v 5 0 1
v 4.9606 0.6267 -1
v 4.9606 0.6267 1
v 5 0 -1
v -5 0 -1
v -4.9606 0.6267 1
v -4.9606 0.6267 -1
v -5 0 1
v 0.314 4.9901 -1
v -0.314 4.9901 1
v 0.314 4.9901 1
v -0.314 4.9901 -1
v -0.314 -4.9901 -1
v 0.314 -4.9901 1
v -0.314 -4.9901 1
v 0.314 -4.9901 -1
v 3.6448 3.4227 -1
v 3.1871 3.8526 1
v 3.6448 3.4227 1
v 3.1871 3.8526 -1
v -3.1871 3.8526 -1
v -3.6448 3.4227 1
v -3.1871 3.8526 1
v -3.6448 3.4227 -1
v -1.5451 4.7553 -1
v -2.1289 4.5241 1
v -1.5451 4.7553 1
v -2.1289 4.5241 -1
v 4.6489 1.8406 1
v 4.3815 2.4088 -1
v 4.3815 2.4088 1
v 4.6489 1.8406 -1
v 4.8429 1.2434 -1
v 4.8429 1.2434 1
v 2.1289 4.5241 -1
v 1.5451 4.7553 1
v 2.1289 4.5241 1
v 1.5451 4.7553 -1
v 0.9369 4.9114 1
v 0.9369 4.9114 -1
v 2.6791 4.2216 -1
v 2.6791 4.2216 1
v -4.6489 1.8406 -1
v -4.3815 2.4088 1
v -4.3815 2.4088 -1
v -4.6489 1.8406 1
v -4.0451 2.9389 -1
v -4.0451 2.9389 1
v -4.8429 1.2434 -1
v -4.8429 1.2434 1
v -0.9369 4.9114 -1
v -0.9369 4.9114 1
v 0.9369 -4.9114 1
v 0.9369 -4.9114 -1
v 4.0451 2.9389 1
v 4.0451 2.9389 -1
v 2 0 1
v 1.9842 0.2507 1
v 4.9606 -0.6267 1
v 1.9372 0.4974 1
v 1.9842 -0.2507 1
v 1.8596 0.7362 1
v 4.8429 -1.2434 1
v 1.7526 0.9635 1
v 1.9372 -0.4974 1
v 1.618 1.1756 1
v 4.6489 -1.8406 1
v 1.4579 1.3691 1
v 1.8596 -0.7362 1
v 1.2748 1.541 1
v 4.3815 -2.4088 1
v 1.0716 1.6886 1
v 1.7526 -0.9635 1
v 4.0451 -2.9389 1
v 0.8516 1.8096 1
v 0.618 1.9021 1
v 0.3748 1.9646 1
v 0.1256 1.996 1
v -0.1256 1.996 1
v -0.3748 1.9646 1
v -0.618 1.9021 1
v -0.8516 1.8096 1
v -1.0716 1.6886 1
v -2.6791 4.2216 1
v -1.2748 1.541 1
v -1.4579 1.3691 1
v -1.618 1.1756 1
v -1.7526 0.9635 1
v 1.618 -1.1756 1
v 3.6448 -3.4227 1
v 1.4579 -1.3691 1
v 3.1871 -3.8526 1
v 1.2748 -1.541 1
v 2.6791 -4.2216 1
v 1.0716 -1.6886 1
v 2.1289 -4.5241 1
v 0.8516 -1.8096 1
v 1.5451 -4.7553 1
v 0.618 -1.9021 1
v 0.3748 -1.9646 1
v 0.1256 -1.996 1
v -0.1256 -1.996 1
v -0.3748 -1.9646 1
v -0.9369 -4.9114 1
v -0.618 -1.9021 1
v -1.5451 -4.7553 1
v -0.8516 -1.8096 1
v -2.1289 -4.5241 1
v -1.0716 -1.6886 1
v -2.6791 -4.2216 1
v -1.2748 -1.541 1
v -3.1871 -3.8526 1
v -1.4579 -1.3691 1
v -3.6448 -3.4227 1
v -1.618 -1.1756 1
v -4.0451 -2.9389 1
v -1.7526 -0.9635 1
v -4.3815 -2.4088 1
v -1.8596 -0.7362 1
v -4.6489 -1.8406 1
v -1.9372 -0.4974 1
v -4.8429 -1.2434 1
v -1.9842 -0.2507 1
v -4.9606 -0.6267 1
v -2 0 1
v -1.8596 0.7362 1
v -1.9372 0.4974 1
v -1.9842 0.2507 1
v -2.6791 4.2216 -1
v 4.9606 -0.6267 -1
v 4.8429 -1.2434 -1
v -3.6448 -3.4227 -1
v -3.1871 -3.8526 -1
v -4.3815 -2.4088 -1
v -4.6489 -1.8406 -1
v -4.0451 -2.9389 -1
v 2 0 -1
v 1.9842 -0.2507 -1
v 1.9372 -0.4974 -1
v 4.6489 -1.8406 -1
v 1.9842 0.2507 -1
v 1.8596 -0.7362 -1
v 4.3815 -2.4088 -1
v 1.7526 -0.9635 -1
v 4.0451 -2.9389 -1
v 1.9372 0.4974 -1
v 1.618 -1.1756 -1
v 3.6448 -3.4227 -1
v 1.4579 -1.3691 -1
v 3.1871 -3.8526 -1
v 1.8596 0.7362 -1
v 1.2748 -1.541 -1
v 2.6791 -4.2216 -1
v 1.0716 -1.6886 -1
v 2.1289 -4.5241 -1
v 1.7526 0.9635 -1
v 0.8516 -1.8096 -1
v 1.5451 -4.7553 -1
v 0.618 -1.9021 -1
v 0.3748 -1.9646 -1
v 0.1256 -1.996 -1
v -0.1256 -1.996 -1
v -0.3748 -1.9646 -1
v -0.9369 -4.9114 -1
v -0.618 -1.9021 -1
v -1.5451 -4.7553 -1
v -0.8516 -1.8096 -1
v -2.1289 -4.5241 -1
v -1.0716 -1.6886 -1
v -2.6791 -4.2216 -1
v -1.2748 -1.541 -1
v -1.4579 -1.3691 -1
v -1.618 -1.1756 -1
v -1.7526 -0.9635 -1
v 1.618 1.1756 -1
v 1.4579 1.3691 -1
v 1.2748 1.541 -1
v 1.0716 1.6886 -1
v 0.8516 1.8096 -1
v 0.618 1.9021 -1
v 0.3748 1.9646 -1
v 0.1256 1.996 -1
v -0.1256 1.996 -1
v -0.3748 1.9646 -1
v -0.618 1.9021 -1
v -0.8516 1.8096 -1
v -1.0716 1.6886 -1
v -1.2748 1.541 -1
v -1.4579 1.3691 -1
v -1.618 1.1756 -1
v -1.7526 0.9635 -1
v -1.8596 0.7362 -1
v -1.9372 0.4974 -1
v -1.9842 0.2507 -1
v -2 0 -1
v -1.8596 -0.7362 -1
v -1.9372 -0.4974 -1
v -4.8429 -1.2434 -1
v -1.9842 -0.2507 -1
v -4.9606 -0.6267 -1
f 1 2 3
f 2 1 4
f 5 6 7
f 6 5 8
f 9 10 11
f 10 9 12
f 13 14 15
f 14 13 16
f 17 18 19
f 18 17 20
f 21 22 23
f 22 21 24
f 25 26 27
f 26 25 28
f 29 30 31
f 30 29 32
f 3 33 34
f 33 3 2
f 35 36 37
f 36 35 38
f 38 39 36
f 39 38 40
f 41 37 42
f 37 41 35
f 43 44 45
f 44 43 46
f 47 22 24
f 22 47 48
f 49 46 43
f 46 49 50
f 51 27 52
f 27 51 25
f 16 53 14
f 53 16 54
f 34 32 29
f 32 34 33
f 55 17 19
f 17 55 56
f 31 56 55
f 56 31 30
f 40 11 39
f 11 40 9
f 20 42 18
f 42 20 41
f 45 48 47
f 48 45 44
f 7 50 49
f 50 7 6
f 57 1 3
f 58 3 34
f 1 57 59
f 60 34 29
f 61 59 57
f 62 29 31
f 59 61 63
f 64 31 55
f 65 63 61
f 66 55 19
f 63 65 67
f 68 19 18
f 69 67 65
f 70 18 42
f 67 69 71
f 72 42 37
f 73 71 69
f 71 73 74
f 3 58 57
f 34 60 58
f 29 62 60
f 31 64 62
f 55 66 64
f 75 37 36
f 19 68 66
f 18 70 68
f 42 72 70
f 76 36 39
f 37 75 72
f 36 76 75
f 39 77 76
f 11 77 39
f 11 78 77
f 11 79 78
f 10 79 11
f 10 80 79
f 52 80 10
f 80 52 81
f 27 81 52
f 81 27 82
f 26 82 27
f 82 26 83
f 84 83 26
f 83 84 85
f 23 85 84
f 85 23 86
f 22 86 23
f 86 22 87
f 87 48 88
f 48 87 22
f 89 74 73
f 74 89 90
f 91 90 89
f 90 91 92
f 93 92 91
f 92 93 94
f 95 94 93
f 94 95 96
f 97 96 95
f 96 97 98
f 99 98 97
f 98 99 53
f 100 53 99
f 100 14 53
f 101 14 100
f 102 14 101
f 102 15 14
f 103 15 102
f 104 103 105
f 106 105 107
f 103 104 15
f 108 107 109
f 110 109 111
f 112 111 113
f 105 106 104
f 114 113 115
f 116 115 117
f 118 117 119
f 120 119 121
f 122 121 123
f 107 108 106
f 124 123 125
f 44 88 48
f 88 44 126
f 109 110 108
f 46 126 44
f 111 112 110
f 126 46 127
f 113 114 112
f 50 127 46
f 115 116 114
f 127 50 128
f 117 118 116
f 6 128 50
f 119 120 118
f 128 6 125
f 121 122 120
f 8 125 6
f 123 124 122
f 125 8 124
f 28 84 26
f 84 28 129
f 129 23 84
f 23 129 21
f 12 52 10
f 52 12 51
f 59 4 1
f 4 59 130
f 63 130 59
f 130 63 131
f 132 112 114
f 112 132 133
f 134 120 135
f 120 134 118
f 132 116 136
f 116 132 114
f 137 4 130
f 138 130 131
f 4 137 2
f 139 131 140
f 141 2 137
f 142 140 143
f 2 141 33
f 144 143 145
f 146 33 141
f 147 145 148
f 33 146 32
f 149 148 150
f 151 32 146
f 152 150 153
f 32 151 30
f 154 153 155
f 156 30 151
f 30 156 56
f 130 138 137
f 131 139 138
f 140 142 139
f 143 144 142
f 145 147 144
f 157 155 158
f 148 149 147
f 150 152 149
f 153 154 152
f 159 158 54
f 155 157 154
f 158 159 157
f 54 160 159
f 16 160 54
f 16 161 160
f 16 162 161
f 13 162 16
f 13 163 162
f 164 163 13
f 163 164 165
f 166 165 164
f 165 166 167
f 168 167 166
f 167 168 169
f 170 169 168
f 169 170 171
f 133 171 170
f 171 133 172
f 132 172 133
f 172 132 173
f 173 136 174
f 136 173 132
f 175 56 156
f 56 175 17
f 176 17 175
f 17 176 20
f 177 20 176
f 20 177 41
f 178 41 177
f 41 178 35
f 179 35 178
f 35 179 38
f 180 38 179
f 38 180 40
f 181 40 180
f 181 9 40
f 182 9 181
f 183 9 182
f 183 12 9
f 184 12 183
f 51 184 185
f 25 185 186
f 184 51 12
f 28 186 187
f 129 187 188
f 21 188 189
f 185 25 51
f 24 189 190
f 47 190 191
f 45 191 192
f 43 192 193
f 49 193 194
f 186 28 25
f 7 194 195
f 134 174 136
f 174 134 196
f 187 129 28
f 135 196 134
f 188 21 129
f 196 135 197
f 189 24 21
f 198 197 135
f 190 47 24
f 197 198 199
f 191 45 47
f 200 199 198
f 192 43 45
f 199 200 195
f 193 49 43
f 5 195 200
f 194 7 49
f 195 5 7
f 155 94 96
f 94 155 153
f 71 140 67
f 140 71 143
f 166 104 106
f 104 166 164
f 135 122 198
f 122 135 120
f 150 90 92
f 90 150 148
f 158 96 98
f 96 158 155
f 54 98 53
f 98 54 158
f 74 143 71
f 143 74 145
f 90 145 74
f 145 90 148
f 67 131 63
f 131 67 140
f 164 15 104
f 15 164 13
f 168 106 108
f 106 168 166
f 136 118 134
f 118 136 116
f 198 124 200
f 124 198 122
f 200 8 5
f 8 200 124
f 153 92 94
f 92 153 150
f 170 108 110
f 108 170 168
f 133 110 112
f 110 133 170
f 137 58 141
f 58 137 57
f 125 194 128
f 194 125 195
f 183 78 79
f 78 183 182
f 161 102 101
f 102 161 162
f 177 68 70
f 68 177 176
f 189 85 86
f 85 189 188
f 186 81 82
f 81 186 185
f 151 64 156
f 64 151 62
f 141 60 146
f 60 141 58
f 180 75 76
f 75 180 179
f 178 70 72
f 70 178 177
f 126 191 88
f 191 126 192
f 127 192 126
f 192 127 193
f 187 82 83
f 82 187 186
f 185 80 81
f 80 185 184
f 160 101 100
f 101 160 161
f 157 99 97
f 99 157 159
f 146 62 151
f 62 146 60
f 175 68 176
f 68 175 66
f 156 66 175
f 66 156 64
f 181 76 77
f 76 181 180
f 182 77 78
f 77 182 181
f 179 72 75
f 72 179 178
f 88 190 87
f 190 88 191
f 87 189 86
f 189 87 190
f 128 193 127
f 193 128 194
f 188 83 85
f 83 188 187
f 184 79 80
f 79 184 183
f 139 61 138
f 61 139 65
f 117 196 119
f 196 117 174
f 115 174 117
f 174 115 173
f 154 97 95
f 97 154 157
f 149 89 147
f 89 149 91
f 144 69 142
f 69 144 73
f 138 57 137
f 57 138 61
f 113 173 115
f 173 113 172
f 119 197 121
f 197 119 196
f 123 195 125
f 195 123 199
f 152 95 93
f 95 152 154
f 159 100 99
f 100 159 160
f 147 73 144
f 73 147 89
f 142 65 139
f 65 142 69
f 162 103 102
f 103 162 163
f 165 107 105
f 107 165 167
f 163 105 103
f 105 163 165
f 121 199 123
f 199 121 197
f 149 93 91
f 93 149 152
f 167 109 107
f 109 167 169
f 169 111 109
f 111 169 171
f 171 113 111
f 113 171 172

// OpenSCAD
$fn = 50;


difference() {
	union() {
		translate(v = [0, 0, -1.0000000000]) {
			cylinder(h = 2, r = 5.0000000000);
		}
	}
	union() {
		translate(v = [0, 0, -100.0000000000]) {
			cylinder(h = 200, r = 2);
		}
	}
}
